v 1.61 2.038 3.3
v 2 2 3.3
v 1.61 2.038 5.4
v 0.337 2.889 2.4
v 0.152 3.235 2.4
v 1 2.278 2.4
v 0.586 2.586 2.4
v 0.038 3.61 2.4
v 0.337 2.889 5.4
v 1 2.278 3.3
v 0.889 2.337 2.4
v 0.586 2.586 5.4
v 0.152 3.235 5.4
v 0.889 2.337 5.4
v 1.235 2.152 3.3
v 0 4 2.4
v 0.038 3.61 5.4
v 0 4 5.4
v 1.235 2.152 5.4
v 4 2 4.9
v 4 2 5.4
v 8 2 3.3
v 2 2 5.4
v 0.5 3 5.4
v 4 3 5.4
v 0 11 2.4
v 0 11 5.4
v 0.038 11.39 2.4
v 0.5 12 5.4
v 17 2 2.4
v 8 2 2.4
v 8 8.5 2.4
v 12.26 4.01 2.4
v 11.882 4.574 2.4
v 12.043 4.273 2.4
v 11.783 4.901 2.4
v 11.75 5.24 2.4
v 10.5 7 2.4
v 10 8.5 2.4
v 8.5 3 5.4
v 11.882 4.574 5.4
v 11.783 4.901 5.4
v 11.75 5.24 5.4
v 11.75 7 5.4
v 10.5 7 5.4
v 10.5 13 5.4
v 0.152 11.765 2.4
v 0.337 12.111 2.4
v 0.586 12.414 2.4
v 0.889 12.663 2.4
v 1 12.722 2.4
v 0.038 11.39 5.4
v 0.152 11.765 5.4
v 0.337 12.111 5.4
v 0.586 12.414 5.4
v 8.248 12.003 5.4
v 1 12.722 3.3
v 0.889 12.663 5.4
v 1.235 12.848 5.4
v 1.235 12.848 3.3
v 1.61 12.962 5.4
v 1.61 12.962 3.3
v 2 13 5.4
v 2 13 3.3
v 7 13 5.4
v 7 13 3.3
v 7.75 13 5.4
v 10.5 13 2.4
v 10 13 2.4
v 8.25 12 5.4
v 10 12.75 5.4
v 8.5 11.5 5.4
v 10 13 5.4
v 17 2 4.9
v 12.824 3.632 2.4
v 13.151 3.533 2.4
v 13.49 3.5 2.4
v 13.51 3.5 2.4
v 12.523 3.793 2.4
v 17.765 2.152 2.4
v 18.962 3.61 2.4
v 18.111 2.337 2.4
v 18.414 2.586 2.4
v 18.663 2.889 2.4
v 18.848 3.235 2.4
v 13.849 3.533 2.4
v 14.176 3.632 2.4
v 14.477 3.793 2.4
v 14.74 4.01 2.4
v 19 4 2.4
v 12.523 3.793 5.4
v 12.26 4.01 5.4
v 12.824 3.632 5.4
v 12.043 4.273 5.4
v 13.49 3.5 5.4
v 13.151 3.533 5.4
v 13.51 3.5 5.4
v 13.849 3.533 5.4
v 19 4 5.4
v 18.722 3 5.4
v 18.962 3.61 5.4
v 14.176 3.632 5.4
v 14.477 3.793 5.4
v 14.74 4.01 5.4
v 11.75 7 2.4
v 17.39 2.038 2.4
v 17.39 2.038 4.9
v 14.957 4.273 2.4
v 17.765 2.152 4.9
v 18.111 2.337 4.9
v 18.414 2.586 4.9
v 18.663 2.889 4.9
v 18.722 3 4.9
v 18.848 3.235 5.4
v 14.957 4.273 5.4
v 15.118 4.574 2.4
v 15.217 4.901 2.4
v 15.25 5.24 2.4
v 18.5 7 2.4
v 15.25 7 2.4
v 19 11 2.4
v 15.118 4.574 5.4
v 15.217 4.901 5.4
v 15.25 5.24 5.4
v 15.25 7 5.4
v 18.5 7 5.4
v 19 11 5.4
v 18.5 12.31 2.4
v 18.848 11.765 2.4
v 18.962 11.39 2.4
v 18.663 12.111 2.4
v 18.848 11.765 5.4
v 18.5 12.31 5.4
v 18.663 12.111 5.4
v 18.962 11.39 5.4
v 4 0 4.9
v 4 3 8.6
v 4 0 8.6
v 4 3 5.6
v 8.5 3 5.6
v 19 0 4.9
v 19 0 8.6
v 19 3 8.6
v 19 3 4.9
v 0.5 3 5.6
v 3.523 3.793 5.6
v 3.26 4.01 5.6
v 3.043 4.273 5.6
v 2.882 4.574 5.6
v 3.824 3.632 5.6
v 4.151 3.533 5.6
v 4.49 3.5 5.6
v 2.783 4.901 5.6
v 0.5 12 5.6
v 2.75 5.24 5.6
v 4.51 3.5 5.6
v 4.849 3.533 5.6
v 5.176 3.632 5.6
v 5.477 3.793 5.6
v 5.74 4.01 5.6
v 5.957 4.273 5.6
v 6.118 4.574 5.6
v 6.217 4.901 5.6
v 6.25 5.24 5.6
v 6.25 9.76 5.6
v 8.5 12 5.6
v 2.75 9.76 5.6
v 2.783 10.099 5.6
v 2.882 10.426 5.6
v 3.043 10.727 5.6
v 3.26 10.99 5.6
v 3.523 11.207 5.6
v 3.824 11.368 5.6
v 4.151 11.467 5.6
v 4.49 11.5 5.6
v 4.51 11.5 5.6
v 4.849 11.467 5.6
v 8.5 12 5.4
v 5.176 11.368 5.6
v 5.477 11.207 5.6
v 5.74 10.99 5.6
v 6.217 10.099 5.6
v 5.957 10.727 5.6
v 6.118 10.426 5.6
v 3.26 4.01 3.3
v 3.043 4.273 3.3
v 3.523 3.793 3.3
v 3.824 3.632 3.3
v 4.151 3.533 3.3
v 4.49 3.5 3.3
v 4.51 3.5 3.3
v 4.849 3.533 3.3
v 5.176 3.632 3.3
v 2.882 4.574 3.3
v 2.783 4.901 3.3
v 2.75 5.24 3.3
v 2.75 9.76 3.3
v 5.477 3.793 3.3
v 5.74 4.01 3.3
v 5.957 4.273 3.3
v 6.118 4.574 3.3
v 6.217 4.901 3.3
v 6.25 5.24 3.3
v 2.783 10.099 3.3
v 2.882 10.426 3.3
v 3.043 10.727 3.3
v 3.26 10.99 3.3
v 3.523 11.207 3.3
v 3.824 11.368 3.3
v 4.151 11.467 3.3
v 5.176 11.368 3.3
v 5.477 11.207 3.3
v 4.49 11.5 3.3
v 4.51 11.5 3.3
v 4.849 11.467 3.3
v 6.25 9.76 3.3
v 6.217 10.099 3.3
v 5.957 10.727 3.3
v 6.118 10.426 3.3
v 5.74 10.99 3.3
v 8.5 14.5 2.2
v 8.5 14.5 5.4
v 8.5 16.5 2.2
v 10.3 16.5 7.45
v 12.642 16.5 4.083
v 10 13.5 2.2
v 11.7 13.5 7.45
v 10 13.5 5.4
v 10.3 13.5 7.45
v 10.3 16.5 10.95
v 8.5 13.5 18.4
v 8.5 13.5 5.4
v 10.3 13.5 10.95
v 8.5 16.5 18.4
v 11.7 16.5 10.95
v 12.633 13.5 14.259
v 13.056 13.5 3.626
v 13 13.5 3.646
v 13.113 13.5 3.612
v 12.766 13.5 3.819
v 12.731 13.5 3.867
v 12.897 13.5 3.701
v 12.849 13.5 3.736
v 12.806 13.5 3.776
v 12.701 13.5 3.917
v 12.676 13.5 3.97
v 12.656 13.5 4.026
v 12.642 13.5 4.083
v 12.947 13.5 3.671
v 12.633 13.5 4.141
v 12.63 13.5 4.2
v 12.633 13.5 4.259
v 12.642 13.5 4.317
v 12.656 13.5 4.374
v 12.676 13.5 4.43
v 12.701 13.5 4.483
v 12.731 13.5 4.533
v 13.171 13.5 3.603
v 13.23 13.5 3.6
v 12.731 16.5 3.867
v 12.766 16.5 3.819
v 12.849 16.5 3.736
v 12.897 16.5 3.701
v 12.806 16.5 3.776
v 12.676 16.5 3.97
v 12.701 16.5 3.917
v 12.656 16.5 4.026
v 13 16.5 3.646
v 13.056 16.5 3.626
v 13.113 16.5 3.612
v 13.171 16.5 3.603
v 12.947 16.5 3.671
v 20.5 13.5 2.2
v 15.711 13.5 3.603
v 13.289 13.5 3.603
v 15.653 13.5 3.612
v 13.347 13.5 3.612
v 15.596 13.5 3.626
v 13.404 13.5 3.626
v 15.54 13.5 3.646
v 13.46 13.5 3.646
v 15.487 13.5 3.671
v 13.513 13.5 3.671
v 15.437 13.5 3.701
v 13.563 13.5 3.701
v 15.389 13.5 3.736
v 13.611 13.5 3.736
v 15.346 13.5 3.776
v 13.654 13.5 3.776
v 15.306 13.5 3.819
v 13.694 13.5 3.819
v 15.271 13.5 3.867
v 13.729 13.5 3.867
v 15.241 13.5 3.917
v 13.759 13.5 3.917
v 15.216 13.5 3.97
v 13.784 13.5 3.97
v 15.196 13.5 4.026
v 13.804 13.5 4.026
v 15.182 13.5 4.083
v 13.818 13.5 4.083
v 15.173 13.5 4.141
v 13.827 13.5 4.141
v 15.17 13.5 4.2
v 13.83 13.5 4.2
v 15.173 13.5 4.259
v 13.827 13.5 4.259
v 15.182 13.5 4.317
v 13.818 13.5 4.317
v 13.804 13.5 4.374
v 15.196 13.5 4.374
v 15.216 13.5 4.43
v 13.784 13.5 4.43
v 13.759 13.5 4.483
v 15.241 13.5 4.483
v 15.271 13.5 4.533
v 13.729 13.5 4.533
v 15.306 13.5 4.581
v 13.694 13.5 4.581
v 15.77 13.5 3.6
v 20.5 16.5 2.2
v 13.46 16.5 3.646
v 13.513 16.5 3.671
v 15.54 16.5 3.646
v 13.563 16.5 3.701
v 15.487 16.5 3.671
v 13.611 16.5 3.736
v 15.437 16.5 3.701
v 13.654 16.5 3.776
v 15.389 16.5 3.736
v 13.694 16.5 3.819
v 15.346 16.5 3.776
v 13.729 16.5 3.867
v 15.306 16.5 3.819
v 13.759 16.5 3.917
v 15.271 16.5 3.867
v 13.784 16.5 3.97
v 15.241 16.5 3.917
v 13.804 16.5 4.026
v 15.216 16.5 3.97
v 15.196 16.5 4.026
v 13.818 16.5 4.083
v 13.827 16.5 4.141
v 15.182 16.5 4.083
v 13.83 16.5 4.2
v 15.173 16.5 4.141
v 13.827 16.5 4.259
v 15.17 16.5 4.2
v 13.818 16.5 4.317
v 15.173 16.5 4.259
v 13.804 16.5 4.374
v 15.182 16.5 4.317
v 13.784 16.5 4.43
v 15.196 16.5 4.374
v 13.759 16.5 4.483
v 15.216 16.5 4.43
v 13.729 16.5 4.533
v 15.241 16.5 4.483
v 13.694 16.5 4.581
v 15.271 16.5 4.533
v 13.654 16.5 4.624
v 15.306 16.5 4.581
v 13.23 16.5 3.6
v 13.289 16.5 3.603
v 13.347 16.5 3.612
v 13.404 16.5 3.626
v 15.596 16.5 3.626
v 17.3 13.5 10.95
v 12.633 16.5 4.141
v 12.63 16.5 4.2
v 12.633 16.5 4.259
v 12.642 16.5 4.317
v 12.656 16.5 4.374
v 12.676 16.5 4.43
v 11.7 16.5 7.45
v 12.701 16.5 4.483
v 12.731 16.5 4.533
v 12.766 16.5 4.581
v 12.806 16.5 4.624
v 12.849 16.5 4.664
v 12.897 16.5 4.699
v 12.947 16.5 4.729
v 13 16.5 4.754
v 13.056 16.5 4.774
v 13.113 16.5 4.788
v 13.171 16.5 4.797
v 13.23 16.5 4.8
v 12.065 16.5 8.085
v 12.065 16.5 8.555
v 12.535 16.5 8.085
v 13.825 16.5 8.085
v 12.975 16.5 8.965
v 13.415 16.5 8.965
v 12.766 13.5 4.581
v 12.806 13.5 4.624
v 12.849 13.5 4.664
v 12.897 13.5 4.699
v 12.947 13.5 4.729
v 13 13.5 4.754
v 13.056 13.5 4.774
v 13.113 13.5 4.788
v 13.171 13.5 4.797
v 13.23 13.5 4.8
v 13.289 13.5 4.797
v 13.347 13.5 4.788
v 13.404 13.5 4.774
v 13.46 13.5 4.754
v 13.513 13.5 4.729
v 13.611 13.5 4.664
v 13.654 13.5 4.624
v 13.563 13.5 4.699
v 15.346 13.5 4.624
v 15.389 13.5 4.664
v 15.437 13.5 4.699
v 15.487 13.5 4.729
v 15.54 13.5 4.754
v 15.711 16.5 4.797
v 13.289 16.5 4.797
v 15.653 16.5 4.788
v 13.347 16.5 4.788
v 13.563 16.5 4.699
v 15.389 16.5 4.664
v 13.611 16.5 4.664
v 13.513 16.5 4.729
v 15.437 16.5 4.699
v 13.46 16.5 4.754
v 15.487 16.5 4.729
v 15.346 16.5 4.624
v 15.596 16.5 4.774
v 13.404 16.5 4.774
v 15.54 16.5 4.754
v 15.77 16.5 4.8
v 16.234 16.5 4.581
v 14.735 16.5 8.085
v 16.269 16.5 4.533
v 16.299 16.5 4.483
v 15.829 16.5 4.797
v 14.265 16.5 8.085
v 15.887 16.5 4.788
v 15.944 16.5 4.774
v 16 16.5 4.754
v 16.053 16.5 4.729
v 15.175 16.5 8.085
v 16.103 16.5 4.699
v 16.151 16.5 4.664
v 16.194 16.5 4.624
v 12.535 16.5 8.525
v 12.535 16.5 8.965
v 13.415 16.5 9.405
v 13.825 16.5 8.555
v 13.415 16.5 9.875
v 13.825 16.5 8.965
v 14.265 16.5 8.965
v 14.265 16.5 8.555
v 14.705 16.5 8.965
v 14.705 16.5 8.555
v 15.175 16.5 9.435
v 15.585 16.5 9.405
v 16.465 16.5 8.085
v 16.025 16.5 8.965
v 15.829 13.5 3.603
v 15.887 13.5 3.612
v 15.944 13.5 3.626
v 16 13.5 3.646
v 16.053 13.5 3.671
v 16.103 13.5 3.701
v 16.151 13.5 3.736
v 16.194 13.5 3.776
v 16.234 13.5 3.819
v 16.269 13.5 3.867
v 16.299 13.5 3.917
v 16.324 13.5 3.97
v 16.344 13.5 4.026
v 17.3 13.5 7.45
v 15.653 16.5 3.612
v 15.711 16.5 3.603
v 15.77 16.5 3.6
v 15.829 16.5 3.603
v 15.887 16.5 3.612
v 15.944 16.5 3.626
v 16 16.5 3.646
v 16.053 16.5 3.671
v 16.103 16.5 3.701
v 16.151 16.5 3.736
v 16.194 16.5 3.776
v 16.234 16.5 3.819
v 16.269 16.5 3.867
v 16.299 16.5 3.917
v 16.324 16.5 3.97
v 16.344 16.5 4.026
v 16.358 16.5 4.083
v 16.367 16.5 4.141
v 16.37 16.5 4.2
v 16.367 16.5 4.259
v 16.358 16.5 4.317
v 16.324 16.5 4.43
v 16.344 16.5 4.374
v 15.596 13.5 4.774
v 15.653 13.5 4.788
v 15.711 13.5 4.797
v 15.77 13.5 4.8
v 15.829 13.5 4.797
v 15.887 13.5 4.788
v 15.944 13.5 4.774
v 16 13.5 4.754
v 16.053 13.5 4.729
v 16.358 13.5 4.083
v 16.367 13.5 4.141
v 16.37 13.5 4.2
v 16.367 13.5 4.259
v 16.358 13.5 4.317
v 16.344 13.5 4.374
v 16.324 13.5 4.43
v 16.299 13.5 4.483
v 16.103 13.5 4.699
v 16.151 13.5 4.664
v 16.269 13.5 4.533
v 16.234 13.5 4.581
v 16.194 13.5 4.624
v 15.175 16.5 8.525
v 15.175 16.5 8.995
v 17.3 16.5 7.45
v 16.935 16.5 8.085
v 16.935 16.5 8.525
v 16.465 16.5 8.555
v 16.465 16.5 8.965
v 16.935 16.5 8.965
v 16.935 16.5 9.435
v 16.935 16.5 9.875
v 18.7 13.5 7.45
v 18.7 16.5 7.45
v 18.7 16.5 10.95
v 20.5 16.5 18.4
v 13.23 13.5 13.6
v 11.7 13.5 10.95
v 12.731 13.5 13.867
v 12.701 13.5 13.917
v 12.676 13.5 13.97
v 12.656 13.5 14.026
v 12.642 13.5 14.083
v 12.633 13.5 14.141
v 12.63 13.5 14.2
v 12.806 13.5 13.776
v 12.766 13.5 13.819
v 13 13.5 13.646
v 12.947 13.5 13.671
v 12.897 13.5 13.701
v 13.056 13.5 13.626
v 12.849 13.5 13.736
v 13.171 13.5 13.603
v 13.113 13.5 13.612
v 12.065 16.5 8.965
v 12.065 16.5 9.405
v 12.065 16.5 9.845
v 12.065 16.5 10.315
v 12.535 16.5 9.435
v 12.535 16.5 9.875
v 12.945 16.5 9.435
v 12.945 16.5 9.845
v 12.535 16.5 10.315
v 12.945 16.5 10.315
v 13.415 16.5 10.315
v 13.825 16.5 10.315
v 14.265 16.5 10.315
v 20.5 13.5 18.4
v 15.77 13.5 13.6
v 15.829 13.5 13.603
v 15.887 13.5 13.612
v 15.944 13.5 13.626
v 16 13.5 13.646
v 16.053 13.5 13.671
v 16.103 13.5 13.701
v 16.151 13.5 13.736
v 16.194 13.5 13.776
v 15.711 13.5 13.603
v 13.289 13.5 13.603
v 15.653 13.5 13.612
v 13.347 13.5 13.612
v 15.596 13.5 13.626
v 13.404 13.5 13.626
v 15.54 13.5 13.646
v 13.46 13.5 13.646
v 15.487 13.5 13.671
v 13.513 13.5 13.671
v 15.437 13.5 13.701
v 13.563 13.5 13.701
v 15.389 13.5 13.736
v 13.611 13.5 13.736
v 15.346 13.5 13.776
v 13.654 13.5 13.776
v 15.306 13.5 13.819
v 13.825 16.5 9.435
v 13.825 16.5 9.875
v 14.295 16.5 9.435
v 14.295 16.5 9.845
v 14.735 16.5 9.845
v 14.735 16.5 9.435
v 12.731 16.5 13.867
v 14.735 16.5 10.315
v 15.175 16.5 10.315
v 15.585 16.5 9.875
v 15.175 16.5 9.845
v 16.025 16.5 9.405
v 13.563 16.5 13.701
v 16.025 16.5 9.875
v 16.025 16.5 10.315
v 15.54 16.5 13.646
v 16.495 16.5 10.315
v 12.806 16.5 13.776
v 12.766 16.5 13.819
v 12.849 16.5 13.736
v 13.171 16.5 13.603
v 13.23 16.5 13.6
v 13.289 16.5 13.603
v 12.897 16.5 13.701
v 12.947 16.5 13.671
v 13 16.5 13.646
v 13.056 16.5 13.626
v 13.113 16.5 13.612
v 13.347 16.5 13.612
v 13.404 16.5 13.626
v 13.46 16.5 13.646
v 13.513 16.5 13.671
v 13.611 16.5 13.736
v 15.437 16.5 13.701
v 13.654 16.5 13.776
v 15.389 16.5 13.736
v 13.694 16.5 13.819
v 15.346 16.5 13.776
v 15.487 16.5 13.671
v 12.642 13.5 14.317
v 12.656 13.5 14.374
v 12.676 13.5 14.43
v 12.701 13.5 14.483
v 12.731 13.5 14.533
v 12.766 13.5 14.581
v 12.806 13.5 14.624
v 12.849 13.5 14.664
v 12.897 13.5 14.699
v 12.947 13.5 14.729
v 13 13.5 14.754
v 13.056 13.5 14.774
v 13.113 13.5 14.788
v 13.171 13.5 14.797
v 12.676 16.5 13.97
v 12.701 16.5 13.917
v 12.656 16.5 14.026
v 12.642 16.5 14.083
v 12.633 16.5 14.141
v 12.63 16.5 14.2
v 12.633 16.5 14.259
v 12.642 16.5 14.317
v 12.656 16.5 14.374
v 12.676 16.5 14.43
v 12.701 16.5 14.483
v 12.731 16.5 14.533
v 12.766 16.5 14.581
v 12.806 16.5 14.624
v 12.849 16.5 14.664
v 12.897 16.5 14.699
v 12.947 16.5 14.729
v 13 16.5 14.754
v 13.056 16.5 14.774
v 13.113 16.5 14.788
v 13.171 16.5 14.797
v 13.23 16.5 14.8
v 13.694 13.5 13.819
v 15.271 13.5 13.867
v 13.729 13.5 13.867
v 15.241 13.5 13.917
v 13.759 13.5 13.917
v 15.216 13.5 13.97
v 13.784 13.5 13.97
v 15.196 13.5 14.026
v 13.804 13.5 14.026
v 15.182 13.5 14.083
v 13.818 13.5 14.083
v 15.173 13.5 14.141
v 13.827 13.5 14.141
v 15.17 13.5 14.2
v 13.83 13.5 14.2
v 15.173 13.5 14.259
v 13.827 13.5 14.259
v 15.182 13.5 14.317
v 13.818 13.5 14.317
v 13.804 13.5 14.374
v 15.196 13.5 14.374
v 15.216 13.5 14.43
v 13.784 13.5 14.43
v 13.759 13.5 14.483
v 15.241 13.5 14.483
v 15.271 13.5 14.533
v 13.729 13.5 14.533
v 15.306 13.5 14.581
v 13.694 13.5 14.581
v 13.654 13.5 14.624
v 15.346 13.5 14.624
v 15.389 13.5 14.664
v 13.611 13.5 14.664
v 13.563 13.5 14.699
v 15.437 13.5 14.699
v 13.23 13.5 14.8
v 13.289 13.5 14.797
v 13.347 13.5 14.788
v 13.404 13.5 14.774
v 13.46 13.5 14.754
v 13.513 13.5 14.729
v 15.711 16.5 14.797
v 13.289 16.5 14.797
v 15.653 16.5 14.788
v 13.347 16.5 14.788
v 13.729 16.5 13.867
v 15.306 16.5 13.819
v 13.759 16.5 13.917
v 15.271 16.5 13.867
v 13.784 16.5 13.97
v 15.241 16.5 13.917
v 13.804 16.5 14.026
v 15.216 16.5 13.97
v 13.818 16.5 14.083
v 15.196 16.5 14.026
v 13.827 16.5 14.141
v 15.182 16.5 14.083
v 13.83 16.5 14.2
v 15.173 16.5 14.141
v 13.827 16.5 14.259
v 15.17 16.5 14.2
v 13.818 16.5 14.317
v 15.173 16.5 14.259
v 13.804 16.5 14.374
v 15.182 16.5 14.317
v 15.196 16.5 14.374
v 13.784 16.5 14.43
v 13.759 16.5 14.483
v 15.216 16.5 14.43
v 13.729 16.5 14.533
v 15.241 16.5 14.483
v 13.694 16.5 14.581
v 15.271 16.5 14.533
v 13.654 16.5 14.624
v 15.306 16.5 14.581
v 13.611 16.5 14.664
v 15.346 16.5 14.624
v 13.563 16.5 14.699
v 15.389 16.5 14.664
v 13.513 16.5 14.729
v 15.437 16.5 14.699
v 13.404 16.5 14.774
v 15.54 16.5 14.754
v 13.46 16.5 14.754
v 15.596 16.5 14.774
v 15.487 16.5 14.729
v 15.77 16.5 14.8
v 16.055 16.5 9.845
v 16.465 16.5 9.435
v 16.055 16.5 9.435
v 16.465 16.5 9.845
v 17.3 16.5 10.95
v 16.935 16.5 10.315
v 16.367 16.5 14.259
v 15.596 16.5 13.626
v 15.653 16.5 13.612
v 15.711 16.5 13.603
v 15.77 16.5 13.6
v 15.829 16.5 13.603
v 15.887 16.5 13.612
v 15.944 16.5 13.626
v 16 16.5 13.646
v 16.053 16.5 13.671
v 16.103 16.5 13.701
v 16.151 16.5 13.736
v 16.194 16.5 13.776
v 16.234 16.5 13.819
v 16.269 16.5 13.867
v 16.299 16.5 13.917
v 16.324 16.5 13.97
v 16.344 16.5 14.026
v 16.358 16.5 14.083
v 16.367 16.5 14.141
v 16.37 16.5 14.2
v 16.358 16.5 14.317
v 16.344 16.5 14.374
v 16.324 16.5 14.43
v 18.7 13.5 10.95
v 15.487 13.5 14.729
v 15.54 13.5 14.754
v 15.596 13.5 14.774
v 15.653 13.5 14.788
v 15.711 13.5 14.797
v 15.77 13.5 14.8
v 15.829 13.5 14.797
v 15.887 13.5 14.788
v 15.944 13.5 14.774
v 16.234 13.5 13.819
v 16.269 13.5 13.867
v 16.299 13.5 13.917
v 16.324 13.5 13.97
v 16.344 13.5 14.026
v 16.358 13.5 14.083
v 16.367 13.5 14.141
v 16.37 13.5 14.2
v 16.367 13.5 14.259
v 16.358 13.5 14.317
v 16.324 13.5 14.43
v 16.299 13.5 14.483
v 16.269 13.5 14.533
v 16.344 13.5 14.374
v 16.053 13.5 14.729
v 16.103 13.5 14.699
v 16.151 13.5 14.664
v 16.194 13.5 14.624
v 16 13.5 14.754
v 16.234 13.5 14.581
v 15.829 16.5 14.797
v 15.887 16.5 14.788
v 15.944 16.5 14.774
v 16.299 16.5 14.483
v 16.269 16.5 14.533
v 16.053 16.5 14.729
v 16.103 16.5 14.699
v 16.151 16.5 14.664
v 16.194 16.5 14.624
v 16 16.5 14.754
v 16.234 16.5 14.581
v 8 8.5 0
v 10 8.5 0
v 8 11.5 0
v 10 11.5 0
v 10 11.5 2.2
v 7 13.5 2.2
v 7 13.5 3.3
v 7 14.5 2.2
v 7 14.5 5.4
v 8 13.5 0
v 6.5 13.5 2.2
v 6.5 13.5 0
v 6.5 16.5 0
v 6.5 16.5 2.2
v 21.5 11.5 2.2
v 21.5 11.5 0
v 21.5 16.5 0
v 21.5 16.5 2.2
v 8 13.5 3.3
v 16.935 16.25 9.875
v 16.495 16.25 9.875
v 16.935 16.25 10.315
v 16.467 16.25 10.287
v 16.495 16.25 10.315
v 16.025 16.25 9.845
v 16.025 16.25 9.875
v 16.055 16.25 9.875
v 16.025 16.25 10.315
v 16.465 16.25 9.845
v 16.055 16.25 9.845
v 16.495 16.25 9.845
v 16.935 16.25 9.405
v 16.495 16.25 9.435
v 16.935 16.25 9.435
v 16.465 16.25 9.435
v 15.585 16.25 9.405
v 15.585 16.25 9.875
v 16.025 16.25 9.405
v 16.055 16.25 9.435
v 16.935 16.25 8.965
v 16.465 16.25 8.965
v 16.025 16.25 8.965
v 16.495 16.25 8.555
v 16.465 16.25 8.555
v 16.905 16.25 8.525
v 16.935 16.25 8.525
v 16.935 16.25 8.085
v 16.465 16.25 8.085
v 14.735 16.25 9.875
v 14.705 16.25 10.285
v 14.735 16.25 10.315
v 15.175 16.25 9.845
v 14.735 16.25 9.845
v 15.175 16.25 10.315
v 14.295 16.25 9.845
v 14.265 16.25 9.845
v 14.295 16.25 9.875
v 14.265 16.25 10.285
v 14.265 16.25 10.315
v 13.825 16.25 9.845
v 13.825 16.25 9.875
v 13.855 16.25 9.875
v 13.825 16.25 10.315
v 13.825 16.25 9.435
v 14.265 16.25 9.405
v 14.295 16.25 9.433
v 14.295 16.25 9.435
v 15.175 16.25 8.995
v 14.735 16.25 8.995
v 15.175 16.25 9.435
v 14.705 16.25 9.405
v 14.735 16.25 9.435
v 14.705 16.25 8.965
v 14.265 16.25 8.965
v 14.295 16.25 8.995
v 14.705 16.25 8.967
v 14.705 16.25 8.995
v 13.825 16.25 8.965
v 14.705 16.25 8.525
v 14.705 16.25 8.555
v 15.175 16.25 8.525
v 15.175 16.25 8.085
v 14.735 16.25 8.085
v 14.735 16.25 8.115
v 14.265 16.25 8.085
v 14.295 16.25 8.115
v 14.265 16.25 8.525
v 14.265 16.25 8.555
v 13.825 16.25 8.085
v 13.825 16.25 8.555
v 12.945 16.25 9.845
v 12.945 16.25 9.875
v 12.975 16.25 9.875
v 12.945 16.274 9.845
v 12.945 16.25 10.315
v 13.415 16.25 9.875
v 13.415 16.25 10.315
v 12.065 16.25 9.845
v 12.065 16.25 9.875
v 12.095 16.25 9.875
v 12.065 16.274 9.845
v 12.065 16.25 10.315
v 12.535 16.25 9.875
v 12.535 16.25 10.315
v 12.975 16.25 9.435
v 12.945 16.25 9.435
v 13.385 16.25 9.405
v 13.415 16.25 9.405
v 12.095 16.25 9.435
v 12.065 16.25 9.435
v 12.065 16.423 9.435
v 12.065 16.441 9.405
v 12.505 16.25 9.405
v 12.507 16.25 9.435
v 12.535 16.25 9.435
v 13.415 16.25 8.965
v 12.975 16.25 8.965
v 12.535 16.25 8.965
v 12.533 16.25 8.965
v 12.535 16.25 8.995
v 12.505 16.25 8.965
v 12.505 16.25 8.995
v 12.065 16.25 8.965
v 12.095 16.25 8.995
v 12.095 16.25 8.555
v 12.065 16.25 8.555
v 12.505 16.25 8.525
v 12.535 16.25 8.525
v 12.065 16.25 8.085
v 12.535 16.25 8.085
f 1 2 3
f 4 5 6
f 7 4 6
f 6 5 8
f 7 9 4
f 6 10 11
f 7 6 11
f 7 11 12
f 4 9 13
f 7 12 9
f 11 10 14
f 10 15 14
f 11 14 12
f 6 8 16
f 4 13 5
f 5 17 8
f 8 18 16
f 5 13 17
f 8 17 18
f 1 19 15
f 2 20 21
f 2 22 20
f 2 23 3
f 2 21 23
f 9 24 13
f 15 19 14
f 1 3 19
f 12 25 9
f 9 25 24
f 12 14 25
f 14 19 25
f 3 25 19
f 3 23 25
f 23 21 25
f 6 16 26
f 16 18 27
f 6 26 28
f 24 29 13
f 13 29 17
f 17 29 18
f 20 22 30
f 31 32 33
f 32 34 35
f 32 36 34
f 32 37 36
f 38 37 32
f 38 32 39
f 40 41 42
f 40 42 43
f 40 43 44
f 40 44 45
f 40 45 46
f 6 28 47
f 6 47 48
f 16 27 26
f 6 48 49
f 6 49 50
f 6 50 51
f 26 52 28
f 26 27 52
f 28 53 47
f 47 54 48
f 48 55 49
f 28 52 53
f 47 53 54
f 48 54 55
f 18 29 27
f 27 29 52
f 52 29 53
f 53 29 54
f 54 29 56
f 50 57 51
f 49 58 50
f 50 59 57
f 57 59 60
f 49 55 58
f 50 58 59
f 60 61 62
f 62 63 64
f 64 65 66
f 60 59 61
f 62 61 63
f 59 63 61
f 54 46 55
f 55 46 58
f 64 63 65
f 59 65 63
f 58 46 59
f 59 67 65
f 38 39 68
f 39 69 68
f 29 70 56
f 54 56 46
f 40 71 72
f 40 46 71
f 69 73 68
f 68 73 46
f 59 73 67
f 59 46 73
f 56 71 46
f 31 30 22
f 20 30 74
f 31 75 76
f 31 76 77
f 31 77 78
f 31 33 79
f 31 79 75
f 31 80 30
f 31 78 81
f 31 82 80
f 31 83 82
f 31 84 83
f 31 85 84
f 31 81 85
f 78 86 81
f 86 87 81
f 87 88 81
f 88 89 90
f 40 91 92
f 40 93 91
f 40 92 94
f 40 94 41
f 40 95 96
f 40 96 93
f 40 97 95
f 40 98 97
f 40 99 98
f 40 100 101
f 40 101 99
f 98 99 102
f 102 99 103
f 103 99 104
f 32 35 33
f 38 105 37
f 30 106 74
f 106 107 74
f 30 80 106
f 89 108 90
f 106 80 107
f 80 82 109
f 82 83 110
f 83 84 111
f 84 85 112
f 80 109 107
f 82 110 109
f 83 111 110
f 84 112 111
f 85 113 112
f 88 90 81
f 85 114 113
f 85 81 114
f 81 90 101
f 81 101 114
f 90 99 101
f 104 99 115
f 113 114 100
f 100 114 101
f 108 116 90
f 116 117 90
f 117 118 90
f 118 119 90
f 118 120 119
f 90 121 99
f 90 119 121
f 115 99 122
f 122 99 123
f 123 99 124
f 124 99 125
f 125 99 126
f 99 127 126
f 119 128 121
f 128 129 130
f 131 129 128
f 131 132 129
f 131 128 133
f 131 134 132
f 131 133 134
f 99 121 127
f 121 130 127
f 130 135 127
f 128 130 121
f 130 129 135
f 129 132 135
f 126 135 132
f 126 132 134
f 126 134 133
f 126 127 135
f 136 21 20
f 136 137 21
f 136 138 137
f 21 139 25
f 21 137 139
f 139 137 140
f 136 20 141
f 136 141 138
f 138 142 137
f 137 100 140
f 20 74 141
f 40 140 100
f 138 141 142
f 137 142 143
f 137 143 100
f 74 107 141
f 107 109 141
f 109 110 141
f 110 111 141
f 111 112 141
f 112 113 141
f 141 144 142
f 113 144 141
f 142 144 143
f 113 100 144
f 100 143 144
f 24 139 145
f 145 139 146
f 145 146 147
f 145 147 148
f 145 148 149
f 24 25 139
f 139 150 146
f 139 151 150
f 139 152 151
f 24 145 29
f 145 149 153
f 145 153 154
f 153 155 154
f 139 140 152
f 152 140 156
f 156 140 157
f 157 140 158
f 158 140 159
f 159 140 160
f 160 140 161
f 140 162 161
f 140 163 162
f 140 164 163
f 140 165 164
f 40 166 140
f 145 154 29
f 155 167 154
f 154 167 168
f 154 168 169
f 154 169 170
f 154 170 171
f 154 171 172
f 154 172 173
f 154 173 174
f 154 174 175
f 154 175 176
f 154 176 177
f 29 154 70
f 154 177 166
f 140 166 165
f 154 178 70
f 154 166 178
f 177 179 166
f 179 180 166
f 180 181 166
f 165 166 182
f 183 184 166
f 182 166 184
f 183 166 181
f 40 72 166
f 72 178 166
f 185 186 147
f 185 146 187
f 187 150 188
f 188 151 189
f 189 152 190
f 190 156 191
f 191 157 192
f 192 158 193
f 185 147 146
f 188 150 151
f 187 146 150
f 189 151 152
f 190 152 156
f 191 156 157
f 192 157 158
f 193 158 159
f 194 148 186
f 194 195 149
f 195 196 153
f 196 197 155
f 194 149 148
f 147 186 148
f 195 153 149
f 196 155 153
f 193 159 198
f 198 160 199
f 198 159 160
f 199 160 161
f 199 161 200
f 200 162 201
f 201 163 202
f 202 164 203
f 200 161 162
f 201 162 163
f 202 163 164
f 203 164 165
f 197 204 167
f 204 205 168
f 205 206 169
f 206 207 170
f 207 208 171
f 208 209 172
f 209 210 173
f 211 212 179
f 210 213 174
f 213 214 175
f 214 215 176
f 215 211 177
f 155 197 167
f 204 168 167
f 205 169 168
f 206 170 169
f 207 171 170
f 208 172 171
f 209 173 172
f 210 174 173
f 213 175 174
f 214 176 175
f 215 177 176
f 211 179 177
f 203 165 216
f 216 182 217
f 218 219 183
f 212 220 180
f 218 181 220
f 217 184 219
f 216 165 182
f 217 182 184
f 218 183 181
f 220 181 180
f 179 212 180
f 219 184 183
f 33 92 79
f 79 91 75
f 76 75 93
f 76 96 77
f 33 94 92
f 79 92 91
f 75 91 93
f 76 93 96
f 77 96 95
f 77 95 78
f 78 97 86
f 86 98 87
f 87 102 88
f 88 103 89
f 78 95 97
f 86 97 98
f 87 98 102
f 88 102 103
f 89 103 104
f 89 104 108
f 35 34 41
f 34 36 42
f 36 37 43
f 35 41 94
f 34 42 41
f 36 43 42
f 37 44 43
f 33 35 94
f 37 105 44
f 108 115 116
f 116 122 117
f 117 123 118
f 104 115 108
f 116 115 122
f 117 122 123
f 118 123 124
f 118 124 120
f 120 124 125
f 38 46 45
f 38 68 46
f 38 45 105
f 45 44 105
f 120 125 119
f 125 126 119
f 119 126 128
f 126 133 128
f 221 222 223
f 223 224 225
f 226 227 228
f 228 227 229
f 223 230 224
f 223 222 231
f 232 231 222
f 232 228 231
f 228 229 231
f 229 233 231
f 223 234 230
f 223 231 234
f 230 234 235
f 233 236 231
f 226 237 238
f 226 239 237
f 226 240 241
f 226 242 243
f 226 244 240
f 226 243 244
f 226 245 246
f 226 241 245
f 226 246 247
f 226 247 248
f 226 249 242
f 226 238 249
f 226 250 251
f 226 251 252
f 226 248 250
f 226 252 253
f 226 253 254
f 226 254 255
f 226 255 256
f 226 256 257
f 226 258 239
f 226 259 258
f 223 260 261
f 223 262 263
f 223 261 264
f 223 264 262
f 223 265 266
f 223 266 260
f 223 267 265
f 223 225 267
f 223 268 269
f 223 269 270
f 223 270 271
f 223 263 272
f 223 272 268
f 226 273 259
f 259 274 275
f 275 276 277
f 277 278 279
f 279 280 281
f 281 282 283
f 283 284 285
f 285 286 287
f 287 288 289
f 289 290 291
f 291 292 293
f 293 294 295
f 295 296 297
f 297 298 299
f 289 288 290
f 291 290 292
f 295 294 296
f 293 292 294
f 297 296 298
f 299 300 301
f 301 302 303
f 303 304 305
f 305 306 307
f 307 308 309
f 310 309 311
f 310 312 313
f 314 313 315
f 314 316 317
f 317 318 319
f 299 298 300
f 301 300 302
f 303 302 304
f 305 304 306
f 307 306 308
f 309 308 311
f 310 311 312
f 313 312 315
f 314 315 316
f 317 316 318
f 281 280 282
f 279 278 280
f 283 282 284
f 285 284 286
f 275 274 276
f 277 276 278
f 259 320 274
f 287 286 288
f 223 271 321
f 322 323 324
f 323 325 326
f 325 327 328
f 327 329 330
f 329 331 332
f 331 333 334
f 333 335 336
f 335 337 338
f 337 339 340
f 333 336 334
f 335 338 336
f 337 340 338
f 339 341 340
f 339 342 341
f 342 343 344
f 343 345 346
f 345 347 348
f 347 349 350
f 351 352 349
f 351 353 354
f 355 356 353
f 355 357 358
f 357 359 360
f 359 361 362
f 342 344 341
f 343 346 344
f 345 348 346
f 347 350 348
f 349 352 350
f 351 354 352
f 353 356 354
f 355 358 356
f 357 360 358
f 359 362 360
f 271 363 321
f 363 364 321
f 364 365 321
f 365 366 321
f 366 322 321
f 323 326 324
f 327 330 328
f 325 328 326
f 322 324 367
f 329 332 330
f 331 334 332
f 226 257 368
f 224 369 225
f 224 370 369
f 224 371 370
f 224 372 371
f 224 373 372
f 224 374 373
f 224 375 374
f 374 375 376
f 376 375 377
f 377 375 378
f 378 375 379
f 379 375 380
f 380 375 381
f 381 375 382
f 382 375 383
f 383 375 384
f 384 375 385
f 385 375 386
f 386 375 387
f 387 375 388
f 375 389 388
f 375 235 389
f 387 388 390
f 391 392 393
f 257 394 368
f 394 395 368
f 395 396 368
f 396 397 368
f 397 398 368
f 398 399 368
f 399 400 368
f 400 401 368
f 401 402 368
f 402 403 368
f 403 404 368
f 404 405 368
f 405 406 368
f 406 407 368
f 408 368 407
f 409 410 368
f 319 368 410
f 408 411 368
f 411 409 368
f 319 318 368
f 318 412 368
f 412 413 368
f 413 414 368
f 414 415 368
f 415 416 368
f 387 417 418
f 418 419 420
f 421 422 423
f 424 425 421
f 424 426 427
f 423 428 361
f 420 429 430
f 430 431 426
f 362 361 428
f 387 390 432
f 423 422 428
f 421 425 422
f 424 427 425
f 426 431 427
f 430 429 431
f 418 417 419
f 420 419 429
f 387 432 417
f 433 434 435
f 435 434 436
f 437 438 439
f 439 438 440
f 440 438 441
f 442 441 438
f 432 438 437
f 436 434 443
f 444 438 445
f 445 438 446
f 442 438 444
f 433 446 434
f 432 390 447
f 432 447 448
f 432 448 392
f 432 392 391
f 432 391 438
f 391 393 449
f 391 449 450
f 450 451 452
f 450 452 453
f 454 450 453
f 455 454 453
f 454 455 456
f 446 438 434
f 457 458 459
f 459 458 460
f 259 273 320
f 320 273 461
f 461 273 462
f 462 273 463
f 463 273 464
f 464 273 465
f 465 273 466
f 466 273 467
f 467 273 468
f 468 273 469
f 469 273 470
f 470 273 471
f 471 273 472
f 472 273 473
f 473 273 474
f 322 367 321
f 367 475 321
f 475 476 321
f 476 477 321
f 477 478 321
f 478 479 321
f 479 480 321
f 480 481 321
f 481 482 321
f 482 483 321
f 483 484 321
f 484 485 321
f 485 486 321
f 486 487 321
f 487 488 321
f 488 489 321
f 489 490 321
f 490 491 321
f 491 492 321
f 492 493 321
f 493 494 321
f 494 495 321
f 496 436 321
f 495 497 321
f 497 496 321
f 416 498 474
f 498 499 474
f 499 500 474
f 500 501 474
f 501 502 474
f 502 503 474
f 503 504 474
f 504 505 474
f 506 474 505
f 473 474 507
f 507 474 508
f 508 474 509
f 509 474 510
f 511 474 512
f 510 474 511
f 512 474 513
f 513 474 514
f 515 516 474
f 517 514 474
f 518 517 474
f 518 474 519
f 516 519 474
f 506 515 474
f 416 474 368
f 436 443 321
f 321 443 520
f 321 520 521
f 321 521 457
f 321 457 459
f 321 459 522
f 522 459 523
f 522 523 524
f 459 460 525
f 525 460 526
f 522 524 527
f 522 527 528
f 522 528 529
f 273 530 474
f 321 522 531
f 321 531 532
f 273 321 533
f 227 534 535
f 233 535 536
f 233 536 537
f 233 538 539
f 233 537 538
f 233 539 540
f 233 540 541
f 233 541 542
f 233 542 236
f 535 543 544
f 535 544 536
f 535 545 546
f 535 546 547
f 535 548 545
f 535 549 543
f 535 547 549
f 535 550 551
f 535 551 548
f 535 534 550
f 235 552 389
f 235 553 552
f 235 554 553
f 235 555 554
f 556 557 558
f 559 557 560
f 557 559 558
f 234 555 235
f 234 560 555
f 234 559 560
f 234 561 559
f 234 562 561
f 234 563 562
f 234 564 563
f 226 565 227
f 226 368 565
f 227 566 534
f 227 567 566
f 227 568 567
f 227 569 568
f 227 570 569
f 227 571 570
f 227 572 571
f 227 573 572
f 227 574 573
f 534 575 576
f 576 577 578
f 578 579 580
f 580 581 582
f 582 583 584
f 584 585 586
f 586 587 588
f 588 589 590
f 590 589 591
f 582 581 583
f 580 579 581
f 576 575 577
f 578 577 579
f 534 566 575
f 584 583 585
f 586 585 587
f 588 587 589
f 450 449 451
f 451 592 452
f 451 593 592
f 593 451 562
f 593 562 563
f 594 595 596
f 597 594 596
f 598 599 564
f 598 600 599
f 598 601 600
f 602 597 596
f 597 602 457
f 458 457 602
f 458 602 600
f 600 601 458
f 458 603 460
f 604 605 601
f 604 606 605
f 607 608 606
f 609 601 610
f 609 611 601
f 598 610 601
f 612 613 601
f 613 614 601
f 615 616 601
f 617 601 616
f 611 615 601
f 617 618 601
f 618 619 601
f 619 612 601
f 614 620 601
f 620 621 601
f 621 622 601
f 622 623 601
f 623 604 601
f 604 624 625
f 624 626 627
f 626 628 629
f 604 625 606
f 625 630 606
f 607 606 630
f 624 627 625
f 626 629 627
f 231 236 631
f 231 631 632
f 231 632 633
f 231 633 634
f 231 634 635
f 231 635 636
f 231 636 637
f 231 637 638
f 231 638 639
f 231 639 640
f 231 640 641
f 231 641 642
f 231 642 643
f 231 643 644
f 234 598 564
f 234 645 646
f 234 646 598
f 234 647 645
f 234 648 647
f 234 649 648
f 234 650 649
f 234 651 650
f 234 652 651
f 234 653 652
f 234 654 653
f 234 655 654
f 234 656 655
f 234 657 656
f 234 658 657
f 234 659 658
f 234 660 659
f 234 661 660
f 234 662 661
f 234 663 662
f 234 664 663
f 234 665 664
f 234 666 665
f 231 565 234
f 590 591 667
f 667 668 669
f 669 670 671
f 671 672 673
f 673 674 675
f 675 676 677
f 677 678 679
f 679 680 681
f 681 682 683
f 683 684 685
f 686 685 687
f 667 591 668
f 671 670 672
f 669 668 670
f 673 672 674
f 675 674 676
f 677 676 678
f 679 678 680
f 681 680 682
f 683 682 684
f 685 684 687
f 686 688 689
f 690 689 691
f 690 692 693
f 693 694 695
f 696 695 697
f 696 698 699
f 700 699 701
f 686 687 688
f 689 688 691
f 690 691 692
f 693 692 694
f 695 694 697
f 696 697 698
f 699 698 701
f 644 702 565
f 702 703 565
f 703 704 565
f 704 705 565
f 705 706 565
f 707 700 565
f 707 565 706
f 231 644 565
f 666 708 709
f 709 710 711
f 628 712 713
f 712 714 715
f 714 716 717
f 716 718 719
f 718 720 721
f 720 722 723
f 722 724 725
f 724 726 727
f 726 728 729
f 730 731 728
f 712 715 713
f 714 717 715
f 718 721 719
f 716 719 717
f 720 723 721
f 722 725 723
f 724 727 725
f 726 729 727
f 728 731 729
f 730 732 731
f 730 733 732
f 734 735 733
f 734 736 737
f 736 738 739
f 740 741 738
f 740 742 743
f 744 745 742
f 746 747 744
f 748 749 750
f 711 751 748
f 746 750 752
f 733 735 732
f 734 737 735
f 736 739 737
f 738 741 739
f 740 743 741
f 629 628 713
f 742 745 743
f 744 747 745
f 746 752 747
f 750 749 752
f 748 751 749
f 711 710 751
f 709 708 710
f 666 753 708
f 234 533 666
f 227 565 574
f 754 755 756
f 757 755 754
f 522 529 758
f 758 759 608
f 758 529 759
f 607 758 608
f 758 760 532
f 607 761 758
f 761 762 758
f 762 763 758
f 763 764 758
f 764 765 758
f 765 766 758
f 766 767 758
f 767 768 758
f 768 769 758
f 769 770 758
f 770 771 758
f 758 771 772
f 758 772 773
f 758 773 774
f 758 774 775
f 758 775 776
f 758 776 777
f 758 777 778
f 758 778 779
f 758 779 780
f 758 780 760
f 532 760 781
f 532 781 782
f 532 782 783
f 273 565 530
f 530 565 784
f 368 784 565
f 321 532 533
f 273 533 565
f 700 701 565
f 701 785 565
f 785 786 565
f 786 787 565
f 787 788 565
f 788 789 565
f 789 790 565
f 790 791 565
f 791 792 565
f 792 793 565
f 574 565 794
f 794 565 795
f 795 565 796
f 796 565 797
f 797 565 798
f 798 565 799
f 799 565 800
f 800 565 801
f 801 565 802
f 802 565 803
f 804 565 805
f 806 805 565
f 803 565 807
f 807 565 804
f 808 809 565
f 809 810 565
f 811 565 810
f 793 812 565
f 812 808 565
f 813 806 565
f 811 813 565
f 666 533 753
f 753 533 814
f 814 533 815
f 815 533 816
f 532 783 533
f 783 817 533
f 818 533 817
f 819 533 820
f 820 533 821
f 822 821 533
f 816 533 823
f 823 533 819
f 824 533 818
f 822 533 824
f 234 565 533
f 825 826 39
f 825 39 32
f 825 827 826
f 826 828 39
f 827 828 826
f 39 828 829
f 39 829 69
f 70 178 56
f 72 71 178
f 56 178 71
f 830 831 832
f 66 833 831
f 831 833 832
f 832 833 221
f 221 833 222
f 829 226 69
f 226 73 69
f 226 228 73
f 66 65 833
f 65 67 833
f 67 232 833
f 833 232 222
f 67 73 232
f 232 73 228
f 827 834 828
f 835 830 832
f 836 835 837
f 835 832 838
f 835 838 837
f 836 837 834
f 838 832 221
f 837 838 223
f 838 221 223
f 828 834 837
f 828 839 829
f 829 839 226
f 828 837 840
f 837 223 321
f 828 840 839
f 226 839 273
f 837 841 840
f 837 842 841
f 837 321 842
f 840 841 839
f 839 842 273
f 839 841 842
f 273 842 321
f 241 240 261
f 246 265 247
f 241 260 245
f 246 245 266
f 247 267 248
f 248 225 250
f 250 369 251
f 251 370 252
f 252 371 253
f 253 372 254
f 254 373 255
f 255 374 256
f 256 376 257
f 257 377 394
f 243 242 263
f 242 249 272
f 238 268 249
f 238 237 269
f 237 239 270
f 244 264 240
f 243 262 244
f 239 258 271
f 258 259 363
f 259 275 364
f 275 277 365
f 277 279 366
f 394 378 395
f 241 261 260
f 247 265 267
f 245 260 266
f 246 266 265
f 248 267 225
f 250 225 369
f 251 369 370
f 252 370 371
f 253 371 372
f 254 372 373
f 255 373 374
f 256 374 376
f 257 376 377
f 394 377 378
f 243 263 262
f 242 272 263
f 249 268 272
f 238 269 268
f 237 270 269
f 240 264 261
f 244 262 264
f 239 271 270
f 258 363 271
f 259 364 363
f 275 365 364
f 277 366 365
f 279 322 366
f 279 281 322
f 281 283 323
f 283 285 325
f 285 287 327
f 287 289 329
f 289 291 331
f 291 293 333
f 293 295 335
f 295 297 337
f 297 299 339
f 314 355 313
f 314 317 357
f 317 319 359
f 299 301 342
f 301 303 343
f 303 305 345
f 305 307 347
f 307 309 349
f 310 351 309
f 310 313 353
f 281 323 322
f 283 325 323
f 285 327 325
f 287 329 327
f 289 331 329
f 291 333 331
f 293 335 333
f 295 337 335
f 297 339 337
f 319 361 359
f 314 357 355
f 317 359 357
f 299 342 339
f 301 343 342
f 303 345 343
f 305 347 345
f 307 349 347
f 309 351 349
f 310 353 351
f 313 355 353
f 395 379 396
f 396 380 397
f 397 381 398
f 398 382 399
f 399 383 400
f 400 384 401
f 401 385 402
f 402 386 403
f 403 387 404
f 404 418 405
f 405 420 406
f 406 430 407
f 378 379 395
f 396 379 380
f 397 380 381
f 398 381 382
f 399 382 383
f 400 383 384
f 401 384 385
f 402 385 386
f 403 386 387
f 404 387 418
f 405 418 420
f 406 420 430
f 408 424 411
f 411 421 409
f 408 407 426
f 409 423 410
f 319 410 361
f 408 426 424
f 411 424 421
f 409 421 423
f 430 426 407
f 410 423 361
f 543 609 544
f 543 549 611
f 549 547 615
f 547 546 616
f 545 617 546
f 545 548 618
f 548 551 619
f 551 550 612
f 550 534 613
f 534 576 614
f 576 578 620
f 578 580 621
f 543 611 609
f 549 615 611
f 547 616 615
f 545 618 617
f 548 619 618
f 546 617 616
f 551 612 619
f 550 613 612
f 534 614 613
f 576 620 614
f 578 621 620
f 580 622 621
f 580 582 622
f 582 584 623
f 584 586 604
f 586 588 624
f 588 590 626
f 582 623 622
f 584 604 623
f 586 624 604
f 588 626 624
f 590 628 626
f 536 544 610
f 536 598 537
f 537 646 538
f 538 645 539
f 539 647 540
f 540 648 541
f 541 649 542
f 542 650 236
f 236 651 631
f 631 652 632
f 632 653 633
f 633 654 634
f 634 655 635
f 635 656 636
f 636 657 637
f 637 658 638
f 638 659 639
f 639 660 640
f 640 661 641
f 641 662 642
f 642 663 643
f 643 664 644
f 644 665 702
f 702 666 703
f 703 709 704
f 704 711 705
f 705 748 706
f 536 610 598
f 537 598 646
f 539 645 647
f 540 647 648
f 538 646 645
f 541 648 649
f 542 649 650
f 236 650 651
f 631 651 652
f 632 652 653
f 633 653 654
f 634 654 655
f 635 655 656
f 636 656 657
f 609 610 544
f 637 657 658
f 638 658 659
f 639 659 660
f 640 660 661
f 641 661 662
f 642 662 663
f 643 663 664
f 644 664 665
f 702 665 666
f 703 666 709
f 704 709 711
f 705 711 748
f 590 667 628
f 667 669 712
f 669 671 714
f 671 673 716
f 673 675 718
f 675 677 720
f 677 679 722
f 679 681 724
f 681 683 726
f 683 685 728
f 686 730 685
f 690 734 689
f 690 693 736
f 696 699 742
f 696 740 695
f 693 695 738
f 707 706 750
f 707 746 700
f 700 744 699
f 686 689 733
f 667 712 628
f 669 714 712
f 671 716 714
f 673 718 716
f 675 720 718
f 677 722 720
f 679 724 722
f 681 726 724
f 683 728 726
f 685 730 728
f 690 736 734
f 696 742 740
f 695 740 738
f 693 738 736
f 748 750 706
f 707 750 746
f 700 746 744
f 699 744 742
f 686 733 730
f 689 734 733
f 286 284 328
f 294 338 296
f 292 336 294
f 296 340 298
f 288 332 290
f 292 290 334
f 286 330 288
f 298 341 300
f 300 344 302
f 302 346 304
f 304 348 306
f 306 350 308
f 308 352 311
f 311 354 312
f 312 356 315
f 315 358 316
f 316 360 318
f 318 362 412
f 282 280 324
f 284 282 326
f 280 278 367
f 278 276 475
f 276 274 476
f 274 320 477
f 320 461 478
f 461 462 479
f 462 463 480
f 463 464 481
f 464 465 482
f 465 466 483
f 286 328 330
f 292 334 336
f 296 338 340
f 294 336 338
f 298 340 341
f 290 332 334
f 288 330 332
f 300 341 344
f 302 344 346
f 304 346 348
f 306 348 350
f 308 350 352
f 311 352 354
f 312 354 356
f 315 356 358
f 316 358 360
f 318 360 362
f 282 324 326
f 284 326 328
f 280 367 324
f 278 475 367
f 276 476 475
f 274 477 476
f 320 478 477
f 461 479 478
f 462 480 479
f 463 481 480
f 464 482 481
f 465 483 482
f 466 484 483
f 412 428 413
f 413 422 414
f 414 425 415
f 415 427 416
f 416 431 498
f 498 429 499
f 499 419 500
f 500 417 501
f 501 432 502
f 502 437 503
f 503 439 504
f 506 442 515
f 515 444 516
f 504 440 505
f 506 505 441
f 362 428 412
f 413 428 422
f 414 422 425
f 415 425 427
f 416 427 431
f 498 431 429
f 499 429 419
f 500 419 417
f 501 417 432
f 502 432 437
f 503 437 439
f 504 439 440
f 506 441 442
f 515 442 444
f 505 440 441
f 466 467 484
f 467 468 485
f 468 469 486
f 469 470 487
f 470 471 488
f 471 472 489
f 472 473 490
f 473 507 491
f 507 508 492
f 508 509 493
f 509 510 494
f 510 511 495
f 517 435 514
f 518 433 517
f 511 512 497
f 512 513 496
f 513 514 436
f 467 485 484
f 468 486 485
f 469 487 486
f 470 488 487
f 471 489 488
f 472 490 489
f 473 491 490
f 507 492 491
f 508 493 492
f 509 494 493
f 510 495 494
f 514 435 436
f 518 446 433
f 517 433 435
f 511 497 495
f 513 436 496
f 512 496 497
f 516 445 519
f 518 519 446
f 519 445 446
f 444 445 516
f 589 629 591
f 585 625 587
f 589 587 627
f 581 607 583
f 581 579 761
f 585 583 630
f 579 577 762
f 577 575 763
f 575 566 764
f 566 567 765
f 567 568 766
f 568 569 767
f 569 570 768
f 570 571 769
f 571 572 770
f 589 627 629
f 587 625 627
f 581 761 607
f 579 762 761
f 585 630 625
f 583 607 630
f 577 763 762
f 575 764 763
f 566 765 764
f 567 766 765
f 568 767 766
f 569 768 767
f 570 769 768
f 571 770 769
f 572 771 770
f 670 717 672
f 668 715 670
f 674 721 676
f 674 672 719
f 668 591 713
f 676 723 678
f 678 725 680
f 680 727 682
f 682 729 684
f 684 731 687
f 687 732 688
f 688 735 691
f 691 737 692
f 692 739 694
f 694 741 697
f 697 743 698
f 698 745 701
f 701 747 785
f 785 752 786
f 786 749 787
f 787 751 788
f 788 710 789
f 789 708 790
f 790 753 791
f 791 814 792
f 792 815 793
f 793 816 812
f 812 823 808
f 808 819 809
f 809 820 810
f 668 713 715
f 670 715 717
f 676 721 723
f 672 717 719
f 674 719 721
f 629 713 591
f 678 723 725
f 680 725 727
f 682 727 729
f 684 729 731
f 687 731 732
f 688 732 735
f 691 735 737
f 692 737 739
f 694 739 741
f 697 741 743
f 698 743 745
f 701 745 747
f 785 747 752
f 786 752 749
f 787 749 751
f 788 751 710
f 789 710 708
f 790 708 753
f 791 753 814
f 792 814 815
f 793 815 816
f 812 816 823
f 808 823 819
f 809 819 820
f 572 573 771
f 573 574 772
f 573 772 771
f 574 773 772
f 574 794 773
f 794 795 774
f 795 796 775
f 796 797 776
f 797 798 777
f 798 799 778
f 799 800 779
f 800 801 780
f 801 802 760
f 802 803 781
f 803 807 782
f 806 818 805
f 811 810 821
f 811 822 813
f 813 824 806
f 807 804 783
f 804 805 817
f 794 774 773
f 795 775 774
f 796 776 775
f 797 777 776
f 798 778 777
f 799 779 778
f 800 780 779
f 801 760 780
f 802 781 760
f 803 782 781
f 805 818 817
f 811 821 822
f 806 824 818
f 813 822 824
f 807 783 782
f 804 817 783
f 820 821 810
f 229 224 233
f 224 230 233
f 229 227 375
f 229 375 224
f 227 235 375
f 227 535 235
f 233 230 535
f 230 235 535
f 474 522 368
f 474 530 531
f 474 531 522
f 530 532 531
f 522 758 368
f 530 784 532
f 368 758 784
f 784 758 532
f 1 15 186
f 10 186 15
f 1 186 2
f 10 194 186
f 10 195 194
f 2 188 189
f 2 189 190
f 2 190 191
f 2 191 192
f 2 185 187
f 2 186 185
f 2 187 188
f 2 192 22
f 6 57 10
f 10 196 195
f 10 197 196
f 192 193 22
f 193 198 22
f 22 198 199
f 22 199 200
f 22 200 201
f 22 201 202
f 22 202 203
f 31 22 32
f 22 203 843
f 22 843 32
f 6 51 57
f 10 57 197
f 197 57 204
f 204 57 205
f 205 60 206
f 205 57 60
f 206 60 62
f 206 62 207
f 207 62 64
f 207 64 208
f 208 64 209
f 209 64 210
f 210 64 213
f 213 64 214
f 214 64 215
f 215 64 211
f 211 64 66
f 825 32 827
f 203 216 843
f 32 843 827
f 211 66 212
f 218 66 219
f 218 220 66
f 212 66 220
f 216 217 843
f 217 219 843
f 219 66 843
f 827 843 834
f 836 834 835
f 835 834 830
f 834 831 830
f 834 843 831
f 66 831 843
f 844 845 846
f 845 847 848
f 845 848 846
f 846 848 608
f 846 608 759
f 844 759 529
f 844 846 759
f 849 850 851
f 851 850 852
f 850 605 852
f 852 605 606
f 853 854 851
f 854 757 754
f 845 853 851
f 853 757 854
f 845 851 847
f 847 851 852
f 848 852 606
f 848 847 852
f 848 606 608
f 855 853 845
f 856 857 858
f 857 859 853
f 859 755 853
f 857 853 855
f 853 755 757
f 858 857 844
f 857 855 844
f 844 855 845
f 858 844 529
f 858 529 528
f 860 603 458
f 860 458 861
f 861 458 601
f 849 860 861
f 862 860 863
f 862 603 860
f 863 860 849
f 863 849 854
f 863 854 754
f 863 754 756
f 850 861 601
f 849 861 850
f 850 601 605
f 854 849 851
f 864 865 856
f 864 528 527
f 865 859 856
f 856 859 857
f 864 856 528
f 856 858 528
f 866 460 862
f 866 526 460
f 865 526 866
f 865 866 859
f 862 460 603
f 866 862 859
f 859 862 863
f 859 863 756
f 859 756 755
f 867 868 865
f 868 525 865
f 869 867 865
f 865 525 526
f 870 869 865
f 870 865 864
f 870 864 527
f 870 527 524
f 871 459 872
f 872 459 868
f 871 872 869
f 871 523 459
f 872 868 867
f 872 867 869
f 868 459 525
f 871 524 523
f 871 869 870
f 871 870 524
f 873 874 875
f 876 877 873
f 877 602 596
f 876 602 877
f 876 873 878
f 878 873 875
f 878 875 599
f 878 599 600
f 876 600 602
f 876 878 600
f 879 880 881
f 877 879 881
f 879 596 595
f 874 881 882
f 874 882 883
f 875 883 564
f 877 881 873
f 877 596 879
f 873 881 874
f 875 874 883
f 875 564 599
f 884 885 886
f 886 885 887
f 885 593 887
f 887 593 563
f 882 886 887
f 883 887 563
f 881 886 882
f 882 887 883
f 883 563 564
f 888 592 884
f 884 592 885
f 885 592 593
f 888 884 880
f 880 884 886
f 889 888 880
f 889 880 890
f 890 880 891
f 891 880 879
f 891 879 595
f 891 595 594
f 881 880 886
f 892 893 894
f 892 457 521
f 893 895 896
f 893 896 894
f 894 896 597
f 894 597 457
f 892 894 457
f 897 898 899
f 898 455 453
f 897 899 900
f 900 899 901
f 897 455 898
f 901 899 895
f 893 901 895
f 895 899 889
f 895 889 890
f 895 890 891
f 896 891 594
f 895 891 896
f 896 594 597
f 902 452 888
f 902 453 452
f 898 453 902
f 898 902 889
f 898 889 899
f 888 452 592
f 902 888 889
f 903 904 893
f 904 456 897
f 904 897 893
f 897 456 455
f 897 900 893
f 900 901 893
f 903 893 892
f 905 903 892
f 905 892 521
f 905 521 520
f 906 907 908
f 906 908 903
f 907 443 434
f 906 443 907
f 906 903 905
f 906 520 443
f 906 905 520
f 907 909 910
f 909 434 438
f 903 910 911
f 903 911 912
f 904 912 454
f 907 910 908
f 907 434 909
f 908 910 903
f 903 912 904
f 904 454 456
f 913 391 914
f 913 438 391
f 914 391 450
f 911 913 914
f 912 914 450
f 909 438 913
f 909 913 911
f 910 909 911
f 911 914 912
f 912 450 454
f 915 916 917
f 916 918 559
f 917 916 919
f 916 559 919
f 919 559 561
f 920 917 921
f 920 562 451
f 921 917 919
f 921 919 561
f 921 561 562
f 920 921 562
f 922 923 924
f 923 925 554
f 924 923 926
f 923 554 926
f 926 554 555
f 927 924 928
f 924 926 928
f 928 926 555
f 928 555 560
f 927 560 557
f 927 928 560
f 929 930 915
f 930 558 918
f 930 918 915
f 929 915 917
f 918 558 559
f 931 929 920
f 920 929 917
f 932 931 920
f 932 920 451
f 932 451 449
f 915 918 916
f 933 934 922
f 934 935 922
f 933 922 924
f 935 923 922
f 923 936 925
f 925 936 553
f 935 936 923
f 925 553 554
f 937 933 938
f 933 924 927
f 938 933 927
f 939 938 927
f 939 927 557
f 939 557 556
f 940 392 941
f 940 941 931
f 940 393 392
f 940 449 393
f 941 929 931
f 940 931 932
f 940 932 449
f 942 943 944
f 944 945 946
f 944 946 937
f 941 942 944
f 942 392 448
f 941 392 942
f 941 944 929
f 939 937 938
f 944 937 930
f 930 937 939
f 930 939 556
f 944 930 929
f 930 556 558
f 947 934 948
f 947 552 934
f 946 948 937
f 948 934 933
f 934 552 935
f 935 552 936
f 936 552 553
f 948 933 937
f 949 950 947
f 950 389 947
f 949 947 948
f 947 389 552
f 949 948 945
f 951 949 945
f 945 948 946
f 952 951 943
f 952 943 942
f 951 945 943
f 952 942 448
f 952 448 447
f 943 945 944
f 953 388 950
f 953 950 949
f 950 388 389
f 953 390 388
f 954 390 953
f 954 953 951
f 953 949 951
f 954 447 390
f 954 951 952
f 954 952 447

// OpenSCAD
// 出口光電感測器可調座
$fn=64;
translate([-76.5,-19.5,-55.1]){rotate([0,0,0]){difference(){difference(){difference(){difference(){difference(){difference(){difference(){difference(){union(){union(){union(){difference(){translate([9,0,0]){difference(){difference(){union(){union(){translate([77,27,0]){translate([0,0,57.5]){linear_extrude(height=3)polygon([[9.5,3.5],[9.46157,3.89018],[9.34776,4.26537],[9.16294,4.61114],[8.91421,4.91421],[8.61114,5.16294],[8.26537,5.34776],[7.89018,5.46157],[7.5,5.5],[-7.5,5.5],[-7.89018,5.46157],[-8.26537,5.34776],[-8.61114,5.16294],[-8.91421,4.91421],[-9.16294,4.61114],[-9.34776,4.26537],[-9.46157,3.89018],[-9.5,3.5],[-9.5,-3.5],[-9.46157,-3.89018],[-9.34776,-4.26537],[-9.16294,-4.61114],[-8.91421,-4.91421],[-8.61114,-5.16294],[-8.26537,-5.34776],[-7.89018,-5.46157],[-7.5,-5.5],[7.5,-5.5],[7.89018,-5.46157],[8.26537,-5.34776],[8.61114,-5.16294],[8.91421,-4.91421],[9.16294,-4.61114],[9.34776,-4.26537],[9.46157,-3.89018],[9.5,-3.5]]);}}translate([71.5,19.5,60]){cube([15,3,3.7]);}}translate([68,22.5,59.2]){cube([8,9,1.5]);}}translate([72,27,0]){translate([0,0,56]){linear_extrude(height=6)polygon([[1.75,2.26],[1.71657,2.59946],[1.61755,2.92587],[1.45676,3.22669],[1.24037,3.49037],[0.97669,3.70676],[0.67587,3.86755],[0.34946,3.96657],[0.01,4],[-0.01,4],[-0.34946,3.96657],[-0.67587,3.86755],[-0.97669,3.70676],[-1.24037,3.49037],[-1.45676,3.22669],[-1.61755,2.92587],[-1.71657,2.59946],[-1.75,2.26],[-1.75,-2.26],[-1.71657,-2.59946],[-1.61755,-2.92587],[-1.45676,-3.22669],[-1.24037,-3.49037],[-0.97669,-3.70676],[-0.67587,-3.86755],[-0.34946,-3.96657],[-0.01,-4],[0.01,-4],[0.34946,-3.96657],[0.67587,-3.86755],[0.97669,-3.70676],[1.24037,-3.49037],[1.45676,-3.22669],[1.61755,-2.92587],[1.71657,-2.59946],[1.75,-2.26]]);}}}translate([81,27,0]){translate([0,0,56]){linear_extrude(height=6)polygon([[1.75,2.26],[1.71657,2.59946],[1.61755,2.92587],[1.45676,3.22669],[1.24037,3.49037],[0.97669,3.70676],[0.67587,3.86755],[0.34946,3.96657],[0.01,4],[-0.01,4],[-0.34946,3.96657],[-0.67587,3.86755],[-0.97669,3.70676],[-1.24037,3.49037],[-1.45676,3.22669],[-1.61755,2.92587],[-1.71657,2.59946],[-1.75,2.26],[-1.75,-2.26],[-1.71657,-2.59946],[-1.61755,-2.92587],[-1.45676,-3.22669],[-1.24037,-3.49037],[-0.97669,-3.70676],[-0.67587,-3.86755],[-0.34946,-3.96657],[-0.01,-4],[0.01,-4],[0.34946,-3.96657],[0.67587,-3.86755],[0.97669,-3.70676],[1.24037,-3.49037],[1.45676,-3.22669],[1.61755,-2.92587],[1.71657,-2.59946],[1.75,-2.26]]);}}}}translate([87,26.5,57.5]){cube([8,8,15]);}}translate([85,33,55.1]){cube([12,3,18.4]);}}translate([83.5,28,55.1]){cube([3,6,5.4]);}}translate([83,31,55.1]){cube([15,5,2.2]);}}translate([89.73,30,59.3]){rotate([-90,0,0]){translate([0,0,0]){cylinder(h=10,d1=1.2,d2=1.2,$fn=64);}}}}translate([89.73,30,69.3]){rotate([-90,0,0]){translate([0,0,0]){cylinder(h=10,d1=1.2,d2=1.2,$fn=64);}}}}translate([92.27,30,59.3]){rotate([-90,0,0]){translate([0,0,0]){cylinder(h=10,d1=1.2,d2=1.2,$fn=64);}}}}translate([92.27,30,69.3]){rotate([-90,0,0]){translate([0,0,0]){cylinder(h=10,d1=1.2,d2=1.2,$fn=64);}}}}translate([86.8,29.5,62.55]){cube([1.4,10,3.5]);}}translate([93.8,29.5,62.55]){cube([1.4,10,3.5]);}}translate([77.5,21,54.4]){cube([7,12,4]);}}multmatrix([[-1,0,0,91],[0,0,1,36],[0,1,0,64.3],[0,0,0,1]]){union(){union(){union(){union(){union(){union(){union(){union(){union(){union(){union(){union(){union(){union(){union(){union(){union(){union(){union(){union(){union(){union(){union(){union(){union(){union(){union(){translate([-2.435,0.645,-0.25]){cube([0.47,0.47,0.37]);}translate([-1.995,0.645,-0.25]){cube([0.47,0.47,0.37]);}}translate([-2.435,0.205,-0.25]){cube([0.47,0.47,0.37]);}}translate([-1.555,0.205,-0.25]){cube([0.47,0.47,0.37]);}}translate([-2.435,-0.235,-0.25]){cube([0.47,0.47,0.37]);}}translate([-1.995,-0.235,-0.25]){cube([0.47,0.47,0.37]);}}translate([-2.435,-0.675,-0.25]){cube([0.47,0.47,0.37]);}}translate([-2.435,-1.115,-0.25]){cube([0.47,0.47,0.37]);}}translate([-0.675,0.645,-0.25]){cube([0.47,0.47,0.37]);}}translate([-0.235,0.645,-0.25]){cube([0.47,0.47,0.37]);}}translate([0.205,0.645,-0.25]){cube([0.47,0.47,0.37]);}}translate([0.205,0.205,-0.25]){cube([0.47,0.47,0.37]);}}translate([-0.675,-0.235,-0.25]){cube([0.47,0.47,0.37]);}}translate([-0.235,-0.235,-0.25]){cube([0.47,0.47,0.37]);}}translate([0.205,-0.235,-0.25]){cube([0.47,0.47,0.37]);}}translate([-0.675,-0.675,-0.25]){cube([0.47,0.47,0.37]);}}translate([-0.675,-1.115,-0.25]){cube([0.47,0.47,0.37]);}}translate([-0.235,-1.115,-0.25]){cube([0.47,0.47,0.37]);}}translate([0.205,-1.115,-0.25]){cube([0.47,0.47,0.37]);}}translate([1.085,0.645,-0.25]){cube([0.47,0.47,0.37]);}}translate([1.965,0.645,-0.25]){cube([0.47,0.47,0.37]);}}translate([1.085,0.205,-0.25]){cube([0.47,0.47,0.37]);}}translate([1.965,0.205,-0.25]){cube([0.47,0.47,0.37]);}}translate([1.085,-0.235,-0.25]){cube([0.47,0.47,0.37]);}}translate([1.525,-0.235,-0.25]){cube([0.47,0.47,0.37]);}}translate([1.965,-0.235,-0.25]){cube([0.47,0.47,0.37]);}}translate([1.965,-0.675,-0.25]){cube([0.47,0.47,0.37]);}}translate([1.965,-1.115,-0.25]){cube([0.47,0.47,0.37]);}}}}}}
